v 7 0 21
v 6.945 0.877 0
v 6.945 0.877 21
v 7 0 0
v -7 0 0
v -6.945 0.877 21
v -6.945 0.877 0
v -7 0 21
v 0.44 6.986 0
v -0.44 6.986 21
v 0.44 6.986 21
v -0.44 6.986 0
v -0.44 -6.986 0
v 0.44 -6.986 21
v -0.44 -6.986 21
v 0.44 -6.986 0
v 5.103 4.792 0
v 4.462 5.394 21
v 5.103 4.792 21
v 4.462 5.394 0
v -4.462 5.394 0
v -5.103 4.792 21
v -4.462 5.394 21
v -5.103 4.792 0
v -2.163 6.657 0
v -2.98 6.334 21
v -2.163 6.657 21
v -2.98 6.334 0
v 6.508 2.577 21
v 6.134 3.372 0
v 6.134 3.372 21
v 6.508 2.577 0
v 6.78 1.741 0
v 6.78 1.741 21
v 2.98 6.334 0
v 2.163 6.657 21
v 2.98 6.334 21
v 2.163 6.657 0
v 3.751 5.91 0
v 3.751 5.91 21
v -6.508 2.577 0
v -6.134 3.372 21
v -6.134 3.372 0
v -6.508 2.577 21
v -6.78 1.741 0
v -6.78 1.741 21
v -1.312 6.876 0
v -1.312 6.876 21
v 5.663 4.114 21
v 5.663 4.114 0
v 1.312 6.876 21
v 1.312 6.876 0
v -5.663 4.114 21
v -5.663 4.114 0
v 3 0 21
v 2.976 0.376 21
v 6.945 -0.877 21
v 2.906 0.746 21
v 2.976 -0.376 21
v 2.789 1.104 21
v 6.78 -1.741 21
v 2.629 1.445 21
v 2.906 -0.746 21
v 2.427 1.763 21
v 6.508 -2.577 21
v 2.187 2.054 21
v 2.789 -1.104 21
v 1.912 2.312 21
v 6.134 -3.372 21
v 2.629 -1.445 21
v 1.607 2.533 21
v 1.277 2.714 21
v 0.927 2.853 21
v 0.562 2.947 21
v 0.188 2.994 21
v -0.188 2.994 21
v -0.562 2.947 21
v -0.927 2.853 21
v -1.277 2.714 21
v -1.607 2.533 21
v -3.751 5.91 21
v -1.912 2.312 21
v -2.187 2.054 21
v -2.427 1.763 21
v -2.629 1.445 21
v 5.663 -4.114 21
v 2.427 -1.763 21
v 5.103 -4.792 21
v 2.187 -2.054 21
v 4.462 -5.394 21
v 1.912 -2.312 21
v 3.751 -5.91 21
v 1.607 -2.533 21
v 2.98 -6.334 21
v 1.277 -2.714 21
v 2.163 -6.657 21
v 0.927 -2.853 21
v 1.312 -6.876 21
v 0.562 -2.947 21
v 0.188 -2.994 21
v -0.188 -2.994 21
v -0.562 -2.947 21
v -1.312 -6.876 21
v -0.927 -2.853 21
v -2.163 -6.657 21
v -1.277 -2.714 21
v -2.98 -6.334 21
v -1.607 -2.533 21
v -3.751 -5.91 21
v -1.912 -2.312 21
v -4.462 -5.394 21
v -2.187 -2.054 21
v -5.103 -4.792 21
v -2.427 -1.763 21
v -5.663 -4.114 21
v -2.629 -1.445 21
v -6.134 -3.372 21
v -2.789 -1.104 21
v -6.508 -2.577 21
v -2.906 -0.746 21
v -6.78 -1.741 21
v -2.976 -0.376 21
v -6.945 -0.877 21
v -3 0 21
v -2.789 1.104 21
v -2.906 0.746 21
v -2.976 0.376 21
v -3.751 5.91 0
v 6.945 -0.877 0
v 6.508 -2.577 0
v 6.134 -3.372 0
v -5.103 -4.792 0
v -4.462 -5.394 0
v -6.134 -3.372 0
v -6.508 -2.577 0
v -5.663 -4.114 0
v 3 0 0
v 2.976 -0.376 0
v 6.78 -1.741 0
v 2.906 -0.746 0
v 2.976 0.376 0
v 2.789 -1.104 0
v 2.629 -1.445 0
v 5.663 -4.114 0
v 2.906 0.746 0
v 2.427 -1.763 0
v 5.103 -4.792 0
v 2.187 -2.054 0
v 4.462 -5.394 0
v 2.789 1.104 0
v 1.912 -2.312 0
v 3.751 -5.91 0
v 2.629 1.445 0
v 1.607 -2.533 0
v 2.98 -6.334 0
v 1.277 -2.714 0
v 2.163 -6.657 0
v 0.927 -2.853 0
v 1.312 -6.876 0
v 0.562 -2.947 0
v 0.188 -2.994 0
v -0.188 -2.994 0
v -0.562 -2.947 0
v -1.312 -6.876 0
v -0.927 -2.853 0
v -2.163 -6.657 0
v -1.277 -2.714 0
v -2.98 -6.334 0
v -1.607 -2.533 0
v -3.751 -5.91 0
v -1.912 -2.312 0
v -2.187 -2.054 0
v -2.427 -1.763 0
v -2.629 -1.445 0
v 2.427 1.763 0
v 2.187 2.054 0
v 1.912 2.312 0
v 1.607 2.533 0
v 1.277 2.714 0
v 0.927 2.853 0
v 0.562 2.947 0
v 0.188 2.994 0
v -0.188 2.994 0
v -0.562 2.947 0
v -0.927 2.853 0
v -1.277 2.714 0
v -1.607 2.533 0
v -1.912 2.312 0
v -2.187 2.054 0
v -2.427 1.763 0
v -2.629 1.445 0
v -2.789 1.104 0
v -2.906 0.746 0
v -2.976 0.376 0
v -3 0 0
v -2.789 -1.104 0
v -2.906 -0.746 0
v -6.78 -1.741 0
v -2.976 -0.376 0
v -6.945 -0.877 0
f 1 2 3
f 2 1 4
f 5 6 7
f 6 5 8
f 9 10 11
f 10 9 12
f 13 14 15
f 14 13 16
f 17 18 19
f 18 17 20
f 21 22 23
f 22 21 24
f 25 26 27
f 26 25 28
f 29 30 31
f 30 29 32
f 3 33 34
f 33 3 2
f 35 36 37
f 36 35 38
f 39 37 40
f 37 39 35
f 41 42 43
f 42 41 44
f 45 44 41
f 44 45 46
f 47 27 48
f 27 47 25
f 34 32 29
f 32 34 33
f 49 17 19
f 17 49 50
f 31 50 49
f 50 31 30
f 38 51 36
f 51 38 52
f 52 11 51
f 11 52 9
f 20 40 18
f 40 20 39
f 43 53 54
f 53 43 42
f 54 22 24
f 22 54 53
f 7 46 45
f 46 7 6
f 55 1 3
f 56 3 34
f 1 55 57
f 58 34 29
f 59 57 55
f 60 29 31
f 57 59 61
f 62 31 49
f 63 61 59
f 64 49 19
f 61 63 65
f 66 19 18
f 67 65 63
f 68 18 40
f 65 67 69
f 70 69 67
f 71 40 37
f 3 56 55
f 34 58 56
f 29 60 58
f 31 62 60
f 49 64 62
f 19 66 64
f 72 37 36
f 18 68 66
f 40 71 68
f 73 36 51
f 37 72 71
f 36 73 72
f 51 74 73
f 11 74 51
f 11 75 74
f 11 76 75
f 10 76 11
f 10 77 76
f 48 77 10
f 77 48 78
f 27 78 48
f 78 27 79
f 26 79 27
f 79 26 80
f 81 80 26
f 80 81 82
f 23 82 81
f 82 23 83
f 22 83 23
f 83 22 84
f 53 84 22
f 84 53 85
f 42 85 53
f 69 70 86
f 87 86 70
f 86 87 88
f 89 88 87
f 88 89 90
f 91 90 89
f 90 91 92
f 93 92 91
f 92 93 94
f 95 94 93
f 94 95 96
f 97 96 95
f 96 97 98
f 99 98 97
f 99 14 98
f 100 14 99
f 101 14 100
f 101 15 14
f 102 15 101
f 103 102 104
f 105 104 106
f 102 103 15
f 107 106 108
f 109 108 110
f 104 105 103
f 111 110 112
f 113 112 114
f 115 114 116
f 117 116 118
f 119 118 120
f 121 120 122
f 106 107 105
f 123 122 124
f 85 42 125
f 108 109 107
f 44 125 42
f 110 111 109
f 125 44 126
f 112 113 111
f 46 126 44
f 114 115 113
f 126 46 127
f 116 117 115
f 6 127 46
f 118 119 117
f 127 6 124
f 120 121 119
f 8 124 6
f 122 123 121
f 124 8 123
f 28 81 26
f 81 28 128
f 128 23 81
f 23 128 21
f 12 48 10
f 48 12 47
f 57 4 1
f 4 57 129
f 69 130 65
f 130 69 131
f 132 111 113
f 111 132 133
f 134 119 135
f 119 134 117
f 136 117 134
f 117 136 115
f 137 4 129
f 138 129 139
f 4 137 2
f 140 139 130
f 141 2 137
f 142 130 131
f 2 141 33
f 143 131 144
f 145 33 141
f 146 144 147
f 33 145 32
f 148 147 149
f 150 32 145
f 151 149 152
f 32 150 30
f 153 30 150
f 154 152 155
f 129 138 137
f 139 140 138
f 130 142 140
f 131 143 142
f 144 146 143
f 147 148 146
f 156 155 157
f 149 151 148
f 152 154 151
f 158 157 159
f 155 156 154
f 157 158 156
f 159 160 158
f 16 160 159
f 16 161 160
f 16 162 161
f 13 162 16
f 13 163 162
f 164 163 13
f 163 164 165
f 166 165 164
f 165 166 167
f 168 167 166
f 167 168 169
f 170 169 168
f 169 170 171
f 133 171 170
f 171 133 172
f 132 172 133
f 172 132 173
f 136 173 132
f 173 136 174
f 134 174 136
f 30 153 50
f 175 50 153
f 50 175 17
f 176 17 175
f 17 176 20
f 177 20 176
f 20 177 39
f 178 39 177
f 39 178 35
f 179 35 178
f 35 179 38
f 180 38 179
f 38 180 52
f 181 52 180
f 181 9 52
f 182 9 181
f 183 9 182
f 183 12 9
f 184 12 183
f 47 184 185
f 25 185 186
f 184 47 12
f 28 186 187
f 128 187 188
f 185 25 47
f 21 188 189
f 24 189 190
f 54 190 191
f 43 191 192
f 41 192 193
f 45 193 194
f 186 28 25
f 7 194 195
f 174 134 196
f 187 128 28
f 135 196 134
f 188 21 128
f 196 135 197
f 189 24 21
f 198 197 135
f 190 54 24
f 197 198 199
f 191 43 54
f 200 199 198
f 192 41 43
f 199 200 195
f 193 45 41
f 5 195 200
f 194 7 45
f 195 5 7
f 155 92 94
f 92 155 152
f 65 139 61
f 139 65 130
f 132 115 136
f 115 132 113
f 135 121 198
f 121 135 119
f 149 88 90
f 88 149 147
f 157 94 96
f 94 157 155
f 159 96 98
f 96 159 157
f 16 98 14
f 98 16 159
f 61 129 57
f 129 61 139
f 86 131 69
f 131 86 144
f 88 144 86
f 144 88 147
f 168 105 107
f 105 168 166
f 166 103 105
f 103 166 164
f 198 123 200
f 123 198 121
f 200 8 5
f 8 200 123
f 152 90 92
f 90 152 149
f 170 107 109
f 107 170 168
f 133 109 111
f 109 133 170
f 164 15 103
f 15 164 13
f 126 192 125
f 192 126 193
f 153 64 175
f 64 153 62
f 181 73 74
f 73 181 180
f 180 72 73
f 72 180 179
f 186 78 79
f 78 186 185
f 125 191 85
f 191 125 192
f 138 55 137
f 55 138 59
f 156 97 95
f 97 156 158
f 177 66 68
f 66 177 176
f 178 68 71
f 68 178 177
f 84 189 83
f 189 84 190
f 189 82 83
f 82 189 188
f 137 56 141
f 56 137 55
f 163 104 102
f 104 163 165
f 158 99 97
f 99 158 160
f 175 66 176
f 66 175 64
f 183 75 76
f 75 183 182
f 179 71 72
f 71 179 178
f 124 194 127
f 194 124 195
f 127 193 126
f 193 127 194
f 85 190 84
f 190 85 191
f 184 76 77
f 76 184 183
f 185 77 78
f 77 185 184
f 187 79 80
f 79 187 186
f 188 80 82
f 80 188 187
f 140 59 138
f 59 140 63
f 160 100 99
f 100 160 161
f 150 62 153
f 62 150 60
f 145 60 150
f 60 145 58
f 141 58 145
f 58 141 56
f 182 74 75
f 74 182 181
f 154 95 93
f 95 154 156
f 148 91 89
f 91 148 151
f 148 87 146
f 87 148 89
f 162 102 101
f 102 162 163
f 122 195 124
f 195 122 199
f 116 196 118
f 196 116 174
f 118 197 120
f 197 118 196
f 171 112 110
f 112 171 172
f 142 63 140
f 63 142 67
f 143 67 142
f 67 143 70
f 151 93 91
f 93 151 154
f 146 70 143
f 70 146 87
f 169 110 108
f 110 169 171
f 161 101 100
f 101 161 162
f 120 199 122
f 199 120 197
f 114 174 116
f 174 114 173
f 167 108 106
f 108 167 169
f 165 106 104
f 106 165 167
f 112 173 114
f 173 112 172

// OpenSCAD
$fn = 50;


difference() {
	union() {
		cylinder(h = 21, r = 7.0000000000);
	}
	union() {
		translate(v = [0, 0, -100]) {
			cylinder(h = 200, r = 3.0000000000);
		}
	}
}
